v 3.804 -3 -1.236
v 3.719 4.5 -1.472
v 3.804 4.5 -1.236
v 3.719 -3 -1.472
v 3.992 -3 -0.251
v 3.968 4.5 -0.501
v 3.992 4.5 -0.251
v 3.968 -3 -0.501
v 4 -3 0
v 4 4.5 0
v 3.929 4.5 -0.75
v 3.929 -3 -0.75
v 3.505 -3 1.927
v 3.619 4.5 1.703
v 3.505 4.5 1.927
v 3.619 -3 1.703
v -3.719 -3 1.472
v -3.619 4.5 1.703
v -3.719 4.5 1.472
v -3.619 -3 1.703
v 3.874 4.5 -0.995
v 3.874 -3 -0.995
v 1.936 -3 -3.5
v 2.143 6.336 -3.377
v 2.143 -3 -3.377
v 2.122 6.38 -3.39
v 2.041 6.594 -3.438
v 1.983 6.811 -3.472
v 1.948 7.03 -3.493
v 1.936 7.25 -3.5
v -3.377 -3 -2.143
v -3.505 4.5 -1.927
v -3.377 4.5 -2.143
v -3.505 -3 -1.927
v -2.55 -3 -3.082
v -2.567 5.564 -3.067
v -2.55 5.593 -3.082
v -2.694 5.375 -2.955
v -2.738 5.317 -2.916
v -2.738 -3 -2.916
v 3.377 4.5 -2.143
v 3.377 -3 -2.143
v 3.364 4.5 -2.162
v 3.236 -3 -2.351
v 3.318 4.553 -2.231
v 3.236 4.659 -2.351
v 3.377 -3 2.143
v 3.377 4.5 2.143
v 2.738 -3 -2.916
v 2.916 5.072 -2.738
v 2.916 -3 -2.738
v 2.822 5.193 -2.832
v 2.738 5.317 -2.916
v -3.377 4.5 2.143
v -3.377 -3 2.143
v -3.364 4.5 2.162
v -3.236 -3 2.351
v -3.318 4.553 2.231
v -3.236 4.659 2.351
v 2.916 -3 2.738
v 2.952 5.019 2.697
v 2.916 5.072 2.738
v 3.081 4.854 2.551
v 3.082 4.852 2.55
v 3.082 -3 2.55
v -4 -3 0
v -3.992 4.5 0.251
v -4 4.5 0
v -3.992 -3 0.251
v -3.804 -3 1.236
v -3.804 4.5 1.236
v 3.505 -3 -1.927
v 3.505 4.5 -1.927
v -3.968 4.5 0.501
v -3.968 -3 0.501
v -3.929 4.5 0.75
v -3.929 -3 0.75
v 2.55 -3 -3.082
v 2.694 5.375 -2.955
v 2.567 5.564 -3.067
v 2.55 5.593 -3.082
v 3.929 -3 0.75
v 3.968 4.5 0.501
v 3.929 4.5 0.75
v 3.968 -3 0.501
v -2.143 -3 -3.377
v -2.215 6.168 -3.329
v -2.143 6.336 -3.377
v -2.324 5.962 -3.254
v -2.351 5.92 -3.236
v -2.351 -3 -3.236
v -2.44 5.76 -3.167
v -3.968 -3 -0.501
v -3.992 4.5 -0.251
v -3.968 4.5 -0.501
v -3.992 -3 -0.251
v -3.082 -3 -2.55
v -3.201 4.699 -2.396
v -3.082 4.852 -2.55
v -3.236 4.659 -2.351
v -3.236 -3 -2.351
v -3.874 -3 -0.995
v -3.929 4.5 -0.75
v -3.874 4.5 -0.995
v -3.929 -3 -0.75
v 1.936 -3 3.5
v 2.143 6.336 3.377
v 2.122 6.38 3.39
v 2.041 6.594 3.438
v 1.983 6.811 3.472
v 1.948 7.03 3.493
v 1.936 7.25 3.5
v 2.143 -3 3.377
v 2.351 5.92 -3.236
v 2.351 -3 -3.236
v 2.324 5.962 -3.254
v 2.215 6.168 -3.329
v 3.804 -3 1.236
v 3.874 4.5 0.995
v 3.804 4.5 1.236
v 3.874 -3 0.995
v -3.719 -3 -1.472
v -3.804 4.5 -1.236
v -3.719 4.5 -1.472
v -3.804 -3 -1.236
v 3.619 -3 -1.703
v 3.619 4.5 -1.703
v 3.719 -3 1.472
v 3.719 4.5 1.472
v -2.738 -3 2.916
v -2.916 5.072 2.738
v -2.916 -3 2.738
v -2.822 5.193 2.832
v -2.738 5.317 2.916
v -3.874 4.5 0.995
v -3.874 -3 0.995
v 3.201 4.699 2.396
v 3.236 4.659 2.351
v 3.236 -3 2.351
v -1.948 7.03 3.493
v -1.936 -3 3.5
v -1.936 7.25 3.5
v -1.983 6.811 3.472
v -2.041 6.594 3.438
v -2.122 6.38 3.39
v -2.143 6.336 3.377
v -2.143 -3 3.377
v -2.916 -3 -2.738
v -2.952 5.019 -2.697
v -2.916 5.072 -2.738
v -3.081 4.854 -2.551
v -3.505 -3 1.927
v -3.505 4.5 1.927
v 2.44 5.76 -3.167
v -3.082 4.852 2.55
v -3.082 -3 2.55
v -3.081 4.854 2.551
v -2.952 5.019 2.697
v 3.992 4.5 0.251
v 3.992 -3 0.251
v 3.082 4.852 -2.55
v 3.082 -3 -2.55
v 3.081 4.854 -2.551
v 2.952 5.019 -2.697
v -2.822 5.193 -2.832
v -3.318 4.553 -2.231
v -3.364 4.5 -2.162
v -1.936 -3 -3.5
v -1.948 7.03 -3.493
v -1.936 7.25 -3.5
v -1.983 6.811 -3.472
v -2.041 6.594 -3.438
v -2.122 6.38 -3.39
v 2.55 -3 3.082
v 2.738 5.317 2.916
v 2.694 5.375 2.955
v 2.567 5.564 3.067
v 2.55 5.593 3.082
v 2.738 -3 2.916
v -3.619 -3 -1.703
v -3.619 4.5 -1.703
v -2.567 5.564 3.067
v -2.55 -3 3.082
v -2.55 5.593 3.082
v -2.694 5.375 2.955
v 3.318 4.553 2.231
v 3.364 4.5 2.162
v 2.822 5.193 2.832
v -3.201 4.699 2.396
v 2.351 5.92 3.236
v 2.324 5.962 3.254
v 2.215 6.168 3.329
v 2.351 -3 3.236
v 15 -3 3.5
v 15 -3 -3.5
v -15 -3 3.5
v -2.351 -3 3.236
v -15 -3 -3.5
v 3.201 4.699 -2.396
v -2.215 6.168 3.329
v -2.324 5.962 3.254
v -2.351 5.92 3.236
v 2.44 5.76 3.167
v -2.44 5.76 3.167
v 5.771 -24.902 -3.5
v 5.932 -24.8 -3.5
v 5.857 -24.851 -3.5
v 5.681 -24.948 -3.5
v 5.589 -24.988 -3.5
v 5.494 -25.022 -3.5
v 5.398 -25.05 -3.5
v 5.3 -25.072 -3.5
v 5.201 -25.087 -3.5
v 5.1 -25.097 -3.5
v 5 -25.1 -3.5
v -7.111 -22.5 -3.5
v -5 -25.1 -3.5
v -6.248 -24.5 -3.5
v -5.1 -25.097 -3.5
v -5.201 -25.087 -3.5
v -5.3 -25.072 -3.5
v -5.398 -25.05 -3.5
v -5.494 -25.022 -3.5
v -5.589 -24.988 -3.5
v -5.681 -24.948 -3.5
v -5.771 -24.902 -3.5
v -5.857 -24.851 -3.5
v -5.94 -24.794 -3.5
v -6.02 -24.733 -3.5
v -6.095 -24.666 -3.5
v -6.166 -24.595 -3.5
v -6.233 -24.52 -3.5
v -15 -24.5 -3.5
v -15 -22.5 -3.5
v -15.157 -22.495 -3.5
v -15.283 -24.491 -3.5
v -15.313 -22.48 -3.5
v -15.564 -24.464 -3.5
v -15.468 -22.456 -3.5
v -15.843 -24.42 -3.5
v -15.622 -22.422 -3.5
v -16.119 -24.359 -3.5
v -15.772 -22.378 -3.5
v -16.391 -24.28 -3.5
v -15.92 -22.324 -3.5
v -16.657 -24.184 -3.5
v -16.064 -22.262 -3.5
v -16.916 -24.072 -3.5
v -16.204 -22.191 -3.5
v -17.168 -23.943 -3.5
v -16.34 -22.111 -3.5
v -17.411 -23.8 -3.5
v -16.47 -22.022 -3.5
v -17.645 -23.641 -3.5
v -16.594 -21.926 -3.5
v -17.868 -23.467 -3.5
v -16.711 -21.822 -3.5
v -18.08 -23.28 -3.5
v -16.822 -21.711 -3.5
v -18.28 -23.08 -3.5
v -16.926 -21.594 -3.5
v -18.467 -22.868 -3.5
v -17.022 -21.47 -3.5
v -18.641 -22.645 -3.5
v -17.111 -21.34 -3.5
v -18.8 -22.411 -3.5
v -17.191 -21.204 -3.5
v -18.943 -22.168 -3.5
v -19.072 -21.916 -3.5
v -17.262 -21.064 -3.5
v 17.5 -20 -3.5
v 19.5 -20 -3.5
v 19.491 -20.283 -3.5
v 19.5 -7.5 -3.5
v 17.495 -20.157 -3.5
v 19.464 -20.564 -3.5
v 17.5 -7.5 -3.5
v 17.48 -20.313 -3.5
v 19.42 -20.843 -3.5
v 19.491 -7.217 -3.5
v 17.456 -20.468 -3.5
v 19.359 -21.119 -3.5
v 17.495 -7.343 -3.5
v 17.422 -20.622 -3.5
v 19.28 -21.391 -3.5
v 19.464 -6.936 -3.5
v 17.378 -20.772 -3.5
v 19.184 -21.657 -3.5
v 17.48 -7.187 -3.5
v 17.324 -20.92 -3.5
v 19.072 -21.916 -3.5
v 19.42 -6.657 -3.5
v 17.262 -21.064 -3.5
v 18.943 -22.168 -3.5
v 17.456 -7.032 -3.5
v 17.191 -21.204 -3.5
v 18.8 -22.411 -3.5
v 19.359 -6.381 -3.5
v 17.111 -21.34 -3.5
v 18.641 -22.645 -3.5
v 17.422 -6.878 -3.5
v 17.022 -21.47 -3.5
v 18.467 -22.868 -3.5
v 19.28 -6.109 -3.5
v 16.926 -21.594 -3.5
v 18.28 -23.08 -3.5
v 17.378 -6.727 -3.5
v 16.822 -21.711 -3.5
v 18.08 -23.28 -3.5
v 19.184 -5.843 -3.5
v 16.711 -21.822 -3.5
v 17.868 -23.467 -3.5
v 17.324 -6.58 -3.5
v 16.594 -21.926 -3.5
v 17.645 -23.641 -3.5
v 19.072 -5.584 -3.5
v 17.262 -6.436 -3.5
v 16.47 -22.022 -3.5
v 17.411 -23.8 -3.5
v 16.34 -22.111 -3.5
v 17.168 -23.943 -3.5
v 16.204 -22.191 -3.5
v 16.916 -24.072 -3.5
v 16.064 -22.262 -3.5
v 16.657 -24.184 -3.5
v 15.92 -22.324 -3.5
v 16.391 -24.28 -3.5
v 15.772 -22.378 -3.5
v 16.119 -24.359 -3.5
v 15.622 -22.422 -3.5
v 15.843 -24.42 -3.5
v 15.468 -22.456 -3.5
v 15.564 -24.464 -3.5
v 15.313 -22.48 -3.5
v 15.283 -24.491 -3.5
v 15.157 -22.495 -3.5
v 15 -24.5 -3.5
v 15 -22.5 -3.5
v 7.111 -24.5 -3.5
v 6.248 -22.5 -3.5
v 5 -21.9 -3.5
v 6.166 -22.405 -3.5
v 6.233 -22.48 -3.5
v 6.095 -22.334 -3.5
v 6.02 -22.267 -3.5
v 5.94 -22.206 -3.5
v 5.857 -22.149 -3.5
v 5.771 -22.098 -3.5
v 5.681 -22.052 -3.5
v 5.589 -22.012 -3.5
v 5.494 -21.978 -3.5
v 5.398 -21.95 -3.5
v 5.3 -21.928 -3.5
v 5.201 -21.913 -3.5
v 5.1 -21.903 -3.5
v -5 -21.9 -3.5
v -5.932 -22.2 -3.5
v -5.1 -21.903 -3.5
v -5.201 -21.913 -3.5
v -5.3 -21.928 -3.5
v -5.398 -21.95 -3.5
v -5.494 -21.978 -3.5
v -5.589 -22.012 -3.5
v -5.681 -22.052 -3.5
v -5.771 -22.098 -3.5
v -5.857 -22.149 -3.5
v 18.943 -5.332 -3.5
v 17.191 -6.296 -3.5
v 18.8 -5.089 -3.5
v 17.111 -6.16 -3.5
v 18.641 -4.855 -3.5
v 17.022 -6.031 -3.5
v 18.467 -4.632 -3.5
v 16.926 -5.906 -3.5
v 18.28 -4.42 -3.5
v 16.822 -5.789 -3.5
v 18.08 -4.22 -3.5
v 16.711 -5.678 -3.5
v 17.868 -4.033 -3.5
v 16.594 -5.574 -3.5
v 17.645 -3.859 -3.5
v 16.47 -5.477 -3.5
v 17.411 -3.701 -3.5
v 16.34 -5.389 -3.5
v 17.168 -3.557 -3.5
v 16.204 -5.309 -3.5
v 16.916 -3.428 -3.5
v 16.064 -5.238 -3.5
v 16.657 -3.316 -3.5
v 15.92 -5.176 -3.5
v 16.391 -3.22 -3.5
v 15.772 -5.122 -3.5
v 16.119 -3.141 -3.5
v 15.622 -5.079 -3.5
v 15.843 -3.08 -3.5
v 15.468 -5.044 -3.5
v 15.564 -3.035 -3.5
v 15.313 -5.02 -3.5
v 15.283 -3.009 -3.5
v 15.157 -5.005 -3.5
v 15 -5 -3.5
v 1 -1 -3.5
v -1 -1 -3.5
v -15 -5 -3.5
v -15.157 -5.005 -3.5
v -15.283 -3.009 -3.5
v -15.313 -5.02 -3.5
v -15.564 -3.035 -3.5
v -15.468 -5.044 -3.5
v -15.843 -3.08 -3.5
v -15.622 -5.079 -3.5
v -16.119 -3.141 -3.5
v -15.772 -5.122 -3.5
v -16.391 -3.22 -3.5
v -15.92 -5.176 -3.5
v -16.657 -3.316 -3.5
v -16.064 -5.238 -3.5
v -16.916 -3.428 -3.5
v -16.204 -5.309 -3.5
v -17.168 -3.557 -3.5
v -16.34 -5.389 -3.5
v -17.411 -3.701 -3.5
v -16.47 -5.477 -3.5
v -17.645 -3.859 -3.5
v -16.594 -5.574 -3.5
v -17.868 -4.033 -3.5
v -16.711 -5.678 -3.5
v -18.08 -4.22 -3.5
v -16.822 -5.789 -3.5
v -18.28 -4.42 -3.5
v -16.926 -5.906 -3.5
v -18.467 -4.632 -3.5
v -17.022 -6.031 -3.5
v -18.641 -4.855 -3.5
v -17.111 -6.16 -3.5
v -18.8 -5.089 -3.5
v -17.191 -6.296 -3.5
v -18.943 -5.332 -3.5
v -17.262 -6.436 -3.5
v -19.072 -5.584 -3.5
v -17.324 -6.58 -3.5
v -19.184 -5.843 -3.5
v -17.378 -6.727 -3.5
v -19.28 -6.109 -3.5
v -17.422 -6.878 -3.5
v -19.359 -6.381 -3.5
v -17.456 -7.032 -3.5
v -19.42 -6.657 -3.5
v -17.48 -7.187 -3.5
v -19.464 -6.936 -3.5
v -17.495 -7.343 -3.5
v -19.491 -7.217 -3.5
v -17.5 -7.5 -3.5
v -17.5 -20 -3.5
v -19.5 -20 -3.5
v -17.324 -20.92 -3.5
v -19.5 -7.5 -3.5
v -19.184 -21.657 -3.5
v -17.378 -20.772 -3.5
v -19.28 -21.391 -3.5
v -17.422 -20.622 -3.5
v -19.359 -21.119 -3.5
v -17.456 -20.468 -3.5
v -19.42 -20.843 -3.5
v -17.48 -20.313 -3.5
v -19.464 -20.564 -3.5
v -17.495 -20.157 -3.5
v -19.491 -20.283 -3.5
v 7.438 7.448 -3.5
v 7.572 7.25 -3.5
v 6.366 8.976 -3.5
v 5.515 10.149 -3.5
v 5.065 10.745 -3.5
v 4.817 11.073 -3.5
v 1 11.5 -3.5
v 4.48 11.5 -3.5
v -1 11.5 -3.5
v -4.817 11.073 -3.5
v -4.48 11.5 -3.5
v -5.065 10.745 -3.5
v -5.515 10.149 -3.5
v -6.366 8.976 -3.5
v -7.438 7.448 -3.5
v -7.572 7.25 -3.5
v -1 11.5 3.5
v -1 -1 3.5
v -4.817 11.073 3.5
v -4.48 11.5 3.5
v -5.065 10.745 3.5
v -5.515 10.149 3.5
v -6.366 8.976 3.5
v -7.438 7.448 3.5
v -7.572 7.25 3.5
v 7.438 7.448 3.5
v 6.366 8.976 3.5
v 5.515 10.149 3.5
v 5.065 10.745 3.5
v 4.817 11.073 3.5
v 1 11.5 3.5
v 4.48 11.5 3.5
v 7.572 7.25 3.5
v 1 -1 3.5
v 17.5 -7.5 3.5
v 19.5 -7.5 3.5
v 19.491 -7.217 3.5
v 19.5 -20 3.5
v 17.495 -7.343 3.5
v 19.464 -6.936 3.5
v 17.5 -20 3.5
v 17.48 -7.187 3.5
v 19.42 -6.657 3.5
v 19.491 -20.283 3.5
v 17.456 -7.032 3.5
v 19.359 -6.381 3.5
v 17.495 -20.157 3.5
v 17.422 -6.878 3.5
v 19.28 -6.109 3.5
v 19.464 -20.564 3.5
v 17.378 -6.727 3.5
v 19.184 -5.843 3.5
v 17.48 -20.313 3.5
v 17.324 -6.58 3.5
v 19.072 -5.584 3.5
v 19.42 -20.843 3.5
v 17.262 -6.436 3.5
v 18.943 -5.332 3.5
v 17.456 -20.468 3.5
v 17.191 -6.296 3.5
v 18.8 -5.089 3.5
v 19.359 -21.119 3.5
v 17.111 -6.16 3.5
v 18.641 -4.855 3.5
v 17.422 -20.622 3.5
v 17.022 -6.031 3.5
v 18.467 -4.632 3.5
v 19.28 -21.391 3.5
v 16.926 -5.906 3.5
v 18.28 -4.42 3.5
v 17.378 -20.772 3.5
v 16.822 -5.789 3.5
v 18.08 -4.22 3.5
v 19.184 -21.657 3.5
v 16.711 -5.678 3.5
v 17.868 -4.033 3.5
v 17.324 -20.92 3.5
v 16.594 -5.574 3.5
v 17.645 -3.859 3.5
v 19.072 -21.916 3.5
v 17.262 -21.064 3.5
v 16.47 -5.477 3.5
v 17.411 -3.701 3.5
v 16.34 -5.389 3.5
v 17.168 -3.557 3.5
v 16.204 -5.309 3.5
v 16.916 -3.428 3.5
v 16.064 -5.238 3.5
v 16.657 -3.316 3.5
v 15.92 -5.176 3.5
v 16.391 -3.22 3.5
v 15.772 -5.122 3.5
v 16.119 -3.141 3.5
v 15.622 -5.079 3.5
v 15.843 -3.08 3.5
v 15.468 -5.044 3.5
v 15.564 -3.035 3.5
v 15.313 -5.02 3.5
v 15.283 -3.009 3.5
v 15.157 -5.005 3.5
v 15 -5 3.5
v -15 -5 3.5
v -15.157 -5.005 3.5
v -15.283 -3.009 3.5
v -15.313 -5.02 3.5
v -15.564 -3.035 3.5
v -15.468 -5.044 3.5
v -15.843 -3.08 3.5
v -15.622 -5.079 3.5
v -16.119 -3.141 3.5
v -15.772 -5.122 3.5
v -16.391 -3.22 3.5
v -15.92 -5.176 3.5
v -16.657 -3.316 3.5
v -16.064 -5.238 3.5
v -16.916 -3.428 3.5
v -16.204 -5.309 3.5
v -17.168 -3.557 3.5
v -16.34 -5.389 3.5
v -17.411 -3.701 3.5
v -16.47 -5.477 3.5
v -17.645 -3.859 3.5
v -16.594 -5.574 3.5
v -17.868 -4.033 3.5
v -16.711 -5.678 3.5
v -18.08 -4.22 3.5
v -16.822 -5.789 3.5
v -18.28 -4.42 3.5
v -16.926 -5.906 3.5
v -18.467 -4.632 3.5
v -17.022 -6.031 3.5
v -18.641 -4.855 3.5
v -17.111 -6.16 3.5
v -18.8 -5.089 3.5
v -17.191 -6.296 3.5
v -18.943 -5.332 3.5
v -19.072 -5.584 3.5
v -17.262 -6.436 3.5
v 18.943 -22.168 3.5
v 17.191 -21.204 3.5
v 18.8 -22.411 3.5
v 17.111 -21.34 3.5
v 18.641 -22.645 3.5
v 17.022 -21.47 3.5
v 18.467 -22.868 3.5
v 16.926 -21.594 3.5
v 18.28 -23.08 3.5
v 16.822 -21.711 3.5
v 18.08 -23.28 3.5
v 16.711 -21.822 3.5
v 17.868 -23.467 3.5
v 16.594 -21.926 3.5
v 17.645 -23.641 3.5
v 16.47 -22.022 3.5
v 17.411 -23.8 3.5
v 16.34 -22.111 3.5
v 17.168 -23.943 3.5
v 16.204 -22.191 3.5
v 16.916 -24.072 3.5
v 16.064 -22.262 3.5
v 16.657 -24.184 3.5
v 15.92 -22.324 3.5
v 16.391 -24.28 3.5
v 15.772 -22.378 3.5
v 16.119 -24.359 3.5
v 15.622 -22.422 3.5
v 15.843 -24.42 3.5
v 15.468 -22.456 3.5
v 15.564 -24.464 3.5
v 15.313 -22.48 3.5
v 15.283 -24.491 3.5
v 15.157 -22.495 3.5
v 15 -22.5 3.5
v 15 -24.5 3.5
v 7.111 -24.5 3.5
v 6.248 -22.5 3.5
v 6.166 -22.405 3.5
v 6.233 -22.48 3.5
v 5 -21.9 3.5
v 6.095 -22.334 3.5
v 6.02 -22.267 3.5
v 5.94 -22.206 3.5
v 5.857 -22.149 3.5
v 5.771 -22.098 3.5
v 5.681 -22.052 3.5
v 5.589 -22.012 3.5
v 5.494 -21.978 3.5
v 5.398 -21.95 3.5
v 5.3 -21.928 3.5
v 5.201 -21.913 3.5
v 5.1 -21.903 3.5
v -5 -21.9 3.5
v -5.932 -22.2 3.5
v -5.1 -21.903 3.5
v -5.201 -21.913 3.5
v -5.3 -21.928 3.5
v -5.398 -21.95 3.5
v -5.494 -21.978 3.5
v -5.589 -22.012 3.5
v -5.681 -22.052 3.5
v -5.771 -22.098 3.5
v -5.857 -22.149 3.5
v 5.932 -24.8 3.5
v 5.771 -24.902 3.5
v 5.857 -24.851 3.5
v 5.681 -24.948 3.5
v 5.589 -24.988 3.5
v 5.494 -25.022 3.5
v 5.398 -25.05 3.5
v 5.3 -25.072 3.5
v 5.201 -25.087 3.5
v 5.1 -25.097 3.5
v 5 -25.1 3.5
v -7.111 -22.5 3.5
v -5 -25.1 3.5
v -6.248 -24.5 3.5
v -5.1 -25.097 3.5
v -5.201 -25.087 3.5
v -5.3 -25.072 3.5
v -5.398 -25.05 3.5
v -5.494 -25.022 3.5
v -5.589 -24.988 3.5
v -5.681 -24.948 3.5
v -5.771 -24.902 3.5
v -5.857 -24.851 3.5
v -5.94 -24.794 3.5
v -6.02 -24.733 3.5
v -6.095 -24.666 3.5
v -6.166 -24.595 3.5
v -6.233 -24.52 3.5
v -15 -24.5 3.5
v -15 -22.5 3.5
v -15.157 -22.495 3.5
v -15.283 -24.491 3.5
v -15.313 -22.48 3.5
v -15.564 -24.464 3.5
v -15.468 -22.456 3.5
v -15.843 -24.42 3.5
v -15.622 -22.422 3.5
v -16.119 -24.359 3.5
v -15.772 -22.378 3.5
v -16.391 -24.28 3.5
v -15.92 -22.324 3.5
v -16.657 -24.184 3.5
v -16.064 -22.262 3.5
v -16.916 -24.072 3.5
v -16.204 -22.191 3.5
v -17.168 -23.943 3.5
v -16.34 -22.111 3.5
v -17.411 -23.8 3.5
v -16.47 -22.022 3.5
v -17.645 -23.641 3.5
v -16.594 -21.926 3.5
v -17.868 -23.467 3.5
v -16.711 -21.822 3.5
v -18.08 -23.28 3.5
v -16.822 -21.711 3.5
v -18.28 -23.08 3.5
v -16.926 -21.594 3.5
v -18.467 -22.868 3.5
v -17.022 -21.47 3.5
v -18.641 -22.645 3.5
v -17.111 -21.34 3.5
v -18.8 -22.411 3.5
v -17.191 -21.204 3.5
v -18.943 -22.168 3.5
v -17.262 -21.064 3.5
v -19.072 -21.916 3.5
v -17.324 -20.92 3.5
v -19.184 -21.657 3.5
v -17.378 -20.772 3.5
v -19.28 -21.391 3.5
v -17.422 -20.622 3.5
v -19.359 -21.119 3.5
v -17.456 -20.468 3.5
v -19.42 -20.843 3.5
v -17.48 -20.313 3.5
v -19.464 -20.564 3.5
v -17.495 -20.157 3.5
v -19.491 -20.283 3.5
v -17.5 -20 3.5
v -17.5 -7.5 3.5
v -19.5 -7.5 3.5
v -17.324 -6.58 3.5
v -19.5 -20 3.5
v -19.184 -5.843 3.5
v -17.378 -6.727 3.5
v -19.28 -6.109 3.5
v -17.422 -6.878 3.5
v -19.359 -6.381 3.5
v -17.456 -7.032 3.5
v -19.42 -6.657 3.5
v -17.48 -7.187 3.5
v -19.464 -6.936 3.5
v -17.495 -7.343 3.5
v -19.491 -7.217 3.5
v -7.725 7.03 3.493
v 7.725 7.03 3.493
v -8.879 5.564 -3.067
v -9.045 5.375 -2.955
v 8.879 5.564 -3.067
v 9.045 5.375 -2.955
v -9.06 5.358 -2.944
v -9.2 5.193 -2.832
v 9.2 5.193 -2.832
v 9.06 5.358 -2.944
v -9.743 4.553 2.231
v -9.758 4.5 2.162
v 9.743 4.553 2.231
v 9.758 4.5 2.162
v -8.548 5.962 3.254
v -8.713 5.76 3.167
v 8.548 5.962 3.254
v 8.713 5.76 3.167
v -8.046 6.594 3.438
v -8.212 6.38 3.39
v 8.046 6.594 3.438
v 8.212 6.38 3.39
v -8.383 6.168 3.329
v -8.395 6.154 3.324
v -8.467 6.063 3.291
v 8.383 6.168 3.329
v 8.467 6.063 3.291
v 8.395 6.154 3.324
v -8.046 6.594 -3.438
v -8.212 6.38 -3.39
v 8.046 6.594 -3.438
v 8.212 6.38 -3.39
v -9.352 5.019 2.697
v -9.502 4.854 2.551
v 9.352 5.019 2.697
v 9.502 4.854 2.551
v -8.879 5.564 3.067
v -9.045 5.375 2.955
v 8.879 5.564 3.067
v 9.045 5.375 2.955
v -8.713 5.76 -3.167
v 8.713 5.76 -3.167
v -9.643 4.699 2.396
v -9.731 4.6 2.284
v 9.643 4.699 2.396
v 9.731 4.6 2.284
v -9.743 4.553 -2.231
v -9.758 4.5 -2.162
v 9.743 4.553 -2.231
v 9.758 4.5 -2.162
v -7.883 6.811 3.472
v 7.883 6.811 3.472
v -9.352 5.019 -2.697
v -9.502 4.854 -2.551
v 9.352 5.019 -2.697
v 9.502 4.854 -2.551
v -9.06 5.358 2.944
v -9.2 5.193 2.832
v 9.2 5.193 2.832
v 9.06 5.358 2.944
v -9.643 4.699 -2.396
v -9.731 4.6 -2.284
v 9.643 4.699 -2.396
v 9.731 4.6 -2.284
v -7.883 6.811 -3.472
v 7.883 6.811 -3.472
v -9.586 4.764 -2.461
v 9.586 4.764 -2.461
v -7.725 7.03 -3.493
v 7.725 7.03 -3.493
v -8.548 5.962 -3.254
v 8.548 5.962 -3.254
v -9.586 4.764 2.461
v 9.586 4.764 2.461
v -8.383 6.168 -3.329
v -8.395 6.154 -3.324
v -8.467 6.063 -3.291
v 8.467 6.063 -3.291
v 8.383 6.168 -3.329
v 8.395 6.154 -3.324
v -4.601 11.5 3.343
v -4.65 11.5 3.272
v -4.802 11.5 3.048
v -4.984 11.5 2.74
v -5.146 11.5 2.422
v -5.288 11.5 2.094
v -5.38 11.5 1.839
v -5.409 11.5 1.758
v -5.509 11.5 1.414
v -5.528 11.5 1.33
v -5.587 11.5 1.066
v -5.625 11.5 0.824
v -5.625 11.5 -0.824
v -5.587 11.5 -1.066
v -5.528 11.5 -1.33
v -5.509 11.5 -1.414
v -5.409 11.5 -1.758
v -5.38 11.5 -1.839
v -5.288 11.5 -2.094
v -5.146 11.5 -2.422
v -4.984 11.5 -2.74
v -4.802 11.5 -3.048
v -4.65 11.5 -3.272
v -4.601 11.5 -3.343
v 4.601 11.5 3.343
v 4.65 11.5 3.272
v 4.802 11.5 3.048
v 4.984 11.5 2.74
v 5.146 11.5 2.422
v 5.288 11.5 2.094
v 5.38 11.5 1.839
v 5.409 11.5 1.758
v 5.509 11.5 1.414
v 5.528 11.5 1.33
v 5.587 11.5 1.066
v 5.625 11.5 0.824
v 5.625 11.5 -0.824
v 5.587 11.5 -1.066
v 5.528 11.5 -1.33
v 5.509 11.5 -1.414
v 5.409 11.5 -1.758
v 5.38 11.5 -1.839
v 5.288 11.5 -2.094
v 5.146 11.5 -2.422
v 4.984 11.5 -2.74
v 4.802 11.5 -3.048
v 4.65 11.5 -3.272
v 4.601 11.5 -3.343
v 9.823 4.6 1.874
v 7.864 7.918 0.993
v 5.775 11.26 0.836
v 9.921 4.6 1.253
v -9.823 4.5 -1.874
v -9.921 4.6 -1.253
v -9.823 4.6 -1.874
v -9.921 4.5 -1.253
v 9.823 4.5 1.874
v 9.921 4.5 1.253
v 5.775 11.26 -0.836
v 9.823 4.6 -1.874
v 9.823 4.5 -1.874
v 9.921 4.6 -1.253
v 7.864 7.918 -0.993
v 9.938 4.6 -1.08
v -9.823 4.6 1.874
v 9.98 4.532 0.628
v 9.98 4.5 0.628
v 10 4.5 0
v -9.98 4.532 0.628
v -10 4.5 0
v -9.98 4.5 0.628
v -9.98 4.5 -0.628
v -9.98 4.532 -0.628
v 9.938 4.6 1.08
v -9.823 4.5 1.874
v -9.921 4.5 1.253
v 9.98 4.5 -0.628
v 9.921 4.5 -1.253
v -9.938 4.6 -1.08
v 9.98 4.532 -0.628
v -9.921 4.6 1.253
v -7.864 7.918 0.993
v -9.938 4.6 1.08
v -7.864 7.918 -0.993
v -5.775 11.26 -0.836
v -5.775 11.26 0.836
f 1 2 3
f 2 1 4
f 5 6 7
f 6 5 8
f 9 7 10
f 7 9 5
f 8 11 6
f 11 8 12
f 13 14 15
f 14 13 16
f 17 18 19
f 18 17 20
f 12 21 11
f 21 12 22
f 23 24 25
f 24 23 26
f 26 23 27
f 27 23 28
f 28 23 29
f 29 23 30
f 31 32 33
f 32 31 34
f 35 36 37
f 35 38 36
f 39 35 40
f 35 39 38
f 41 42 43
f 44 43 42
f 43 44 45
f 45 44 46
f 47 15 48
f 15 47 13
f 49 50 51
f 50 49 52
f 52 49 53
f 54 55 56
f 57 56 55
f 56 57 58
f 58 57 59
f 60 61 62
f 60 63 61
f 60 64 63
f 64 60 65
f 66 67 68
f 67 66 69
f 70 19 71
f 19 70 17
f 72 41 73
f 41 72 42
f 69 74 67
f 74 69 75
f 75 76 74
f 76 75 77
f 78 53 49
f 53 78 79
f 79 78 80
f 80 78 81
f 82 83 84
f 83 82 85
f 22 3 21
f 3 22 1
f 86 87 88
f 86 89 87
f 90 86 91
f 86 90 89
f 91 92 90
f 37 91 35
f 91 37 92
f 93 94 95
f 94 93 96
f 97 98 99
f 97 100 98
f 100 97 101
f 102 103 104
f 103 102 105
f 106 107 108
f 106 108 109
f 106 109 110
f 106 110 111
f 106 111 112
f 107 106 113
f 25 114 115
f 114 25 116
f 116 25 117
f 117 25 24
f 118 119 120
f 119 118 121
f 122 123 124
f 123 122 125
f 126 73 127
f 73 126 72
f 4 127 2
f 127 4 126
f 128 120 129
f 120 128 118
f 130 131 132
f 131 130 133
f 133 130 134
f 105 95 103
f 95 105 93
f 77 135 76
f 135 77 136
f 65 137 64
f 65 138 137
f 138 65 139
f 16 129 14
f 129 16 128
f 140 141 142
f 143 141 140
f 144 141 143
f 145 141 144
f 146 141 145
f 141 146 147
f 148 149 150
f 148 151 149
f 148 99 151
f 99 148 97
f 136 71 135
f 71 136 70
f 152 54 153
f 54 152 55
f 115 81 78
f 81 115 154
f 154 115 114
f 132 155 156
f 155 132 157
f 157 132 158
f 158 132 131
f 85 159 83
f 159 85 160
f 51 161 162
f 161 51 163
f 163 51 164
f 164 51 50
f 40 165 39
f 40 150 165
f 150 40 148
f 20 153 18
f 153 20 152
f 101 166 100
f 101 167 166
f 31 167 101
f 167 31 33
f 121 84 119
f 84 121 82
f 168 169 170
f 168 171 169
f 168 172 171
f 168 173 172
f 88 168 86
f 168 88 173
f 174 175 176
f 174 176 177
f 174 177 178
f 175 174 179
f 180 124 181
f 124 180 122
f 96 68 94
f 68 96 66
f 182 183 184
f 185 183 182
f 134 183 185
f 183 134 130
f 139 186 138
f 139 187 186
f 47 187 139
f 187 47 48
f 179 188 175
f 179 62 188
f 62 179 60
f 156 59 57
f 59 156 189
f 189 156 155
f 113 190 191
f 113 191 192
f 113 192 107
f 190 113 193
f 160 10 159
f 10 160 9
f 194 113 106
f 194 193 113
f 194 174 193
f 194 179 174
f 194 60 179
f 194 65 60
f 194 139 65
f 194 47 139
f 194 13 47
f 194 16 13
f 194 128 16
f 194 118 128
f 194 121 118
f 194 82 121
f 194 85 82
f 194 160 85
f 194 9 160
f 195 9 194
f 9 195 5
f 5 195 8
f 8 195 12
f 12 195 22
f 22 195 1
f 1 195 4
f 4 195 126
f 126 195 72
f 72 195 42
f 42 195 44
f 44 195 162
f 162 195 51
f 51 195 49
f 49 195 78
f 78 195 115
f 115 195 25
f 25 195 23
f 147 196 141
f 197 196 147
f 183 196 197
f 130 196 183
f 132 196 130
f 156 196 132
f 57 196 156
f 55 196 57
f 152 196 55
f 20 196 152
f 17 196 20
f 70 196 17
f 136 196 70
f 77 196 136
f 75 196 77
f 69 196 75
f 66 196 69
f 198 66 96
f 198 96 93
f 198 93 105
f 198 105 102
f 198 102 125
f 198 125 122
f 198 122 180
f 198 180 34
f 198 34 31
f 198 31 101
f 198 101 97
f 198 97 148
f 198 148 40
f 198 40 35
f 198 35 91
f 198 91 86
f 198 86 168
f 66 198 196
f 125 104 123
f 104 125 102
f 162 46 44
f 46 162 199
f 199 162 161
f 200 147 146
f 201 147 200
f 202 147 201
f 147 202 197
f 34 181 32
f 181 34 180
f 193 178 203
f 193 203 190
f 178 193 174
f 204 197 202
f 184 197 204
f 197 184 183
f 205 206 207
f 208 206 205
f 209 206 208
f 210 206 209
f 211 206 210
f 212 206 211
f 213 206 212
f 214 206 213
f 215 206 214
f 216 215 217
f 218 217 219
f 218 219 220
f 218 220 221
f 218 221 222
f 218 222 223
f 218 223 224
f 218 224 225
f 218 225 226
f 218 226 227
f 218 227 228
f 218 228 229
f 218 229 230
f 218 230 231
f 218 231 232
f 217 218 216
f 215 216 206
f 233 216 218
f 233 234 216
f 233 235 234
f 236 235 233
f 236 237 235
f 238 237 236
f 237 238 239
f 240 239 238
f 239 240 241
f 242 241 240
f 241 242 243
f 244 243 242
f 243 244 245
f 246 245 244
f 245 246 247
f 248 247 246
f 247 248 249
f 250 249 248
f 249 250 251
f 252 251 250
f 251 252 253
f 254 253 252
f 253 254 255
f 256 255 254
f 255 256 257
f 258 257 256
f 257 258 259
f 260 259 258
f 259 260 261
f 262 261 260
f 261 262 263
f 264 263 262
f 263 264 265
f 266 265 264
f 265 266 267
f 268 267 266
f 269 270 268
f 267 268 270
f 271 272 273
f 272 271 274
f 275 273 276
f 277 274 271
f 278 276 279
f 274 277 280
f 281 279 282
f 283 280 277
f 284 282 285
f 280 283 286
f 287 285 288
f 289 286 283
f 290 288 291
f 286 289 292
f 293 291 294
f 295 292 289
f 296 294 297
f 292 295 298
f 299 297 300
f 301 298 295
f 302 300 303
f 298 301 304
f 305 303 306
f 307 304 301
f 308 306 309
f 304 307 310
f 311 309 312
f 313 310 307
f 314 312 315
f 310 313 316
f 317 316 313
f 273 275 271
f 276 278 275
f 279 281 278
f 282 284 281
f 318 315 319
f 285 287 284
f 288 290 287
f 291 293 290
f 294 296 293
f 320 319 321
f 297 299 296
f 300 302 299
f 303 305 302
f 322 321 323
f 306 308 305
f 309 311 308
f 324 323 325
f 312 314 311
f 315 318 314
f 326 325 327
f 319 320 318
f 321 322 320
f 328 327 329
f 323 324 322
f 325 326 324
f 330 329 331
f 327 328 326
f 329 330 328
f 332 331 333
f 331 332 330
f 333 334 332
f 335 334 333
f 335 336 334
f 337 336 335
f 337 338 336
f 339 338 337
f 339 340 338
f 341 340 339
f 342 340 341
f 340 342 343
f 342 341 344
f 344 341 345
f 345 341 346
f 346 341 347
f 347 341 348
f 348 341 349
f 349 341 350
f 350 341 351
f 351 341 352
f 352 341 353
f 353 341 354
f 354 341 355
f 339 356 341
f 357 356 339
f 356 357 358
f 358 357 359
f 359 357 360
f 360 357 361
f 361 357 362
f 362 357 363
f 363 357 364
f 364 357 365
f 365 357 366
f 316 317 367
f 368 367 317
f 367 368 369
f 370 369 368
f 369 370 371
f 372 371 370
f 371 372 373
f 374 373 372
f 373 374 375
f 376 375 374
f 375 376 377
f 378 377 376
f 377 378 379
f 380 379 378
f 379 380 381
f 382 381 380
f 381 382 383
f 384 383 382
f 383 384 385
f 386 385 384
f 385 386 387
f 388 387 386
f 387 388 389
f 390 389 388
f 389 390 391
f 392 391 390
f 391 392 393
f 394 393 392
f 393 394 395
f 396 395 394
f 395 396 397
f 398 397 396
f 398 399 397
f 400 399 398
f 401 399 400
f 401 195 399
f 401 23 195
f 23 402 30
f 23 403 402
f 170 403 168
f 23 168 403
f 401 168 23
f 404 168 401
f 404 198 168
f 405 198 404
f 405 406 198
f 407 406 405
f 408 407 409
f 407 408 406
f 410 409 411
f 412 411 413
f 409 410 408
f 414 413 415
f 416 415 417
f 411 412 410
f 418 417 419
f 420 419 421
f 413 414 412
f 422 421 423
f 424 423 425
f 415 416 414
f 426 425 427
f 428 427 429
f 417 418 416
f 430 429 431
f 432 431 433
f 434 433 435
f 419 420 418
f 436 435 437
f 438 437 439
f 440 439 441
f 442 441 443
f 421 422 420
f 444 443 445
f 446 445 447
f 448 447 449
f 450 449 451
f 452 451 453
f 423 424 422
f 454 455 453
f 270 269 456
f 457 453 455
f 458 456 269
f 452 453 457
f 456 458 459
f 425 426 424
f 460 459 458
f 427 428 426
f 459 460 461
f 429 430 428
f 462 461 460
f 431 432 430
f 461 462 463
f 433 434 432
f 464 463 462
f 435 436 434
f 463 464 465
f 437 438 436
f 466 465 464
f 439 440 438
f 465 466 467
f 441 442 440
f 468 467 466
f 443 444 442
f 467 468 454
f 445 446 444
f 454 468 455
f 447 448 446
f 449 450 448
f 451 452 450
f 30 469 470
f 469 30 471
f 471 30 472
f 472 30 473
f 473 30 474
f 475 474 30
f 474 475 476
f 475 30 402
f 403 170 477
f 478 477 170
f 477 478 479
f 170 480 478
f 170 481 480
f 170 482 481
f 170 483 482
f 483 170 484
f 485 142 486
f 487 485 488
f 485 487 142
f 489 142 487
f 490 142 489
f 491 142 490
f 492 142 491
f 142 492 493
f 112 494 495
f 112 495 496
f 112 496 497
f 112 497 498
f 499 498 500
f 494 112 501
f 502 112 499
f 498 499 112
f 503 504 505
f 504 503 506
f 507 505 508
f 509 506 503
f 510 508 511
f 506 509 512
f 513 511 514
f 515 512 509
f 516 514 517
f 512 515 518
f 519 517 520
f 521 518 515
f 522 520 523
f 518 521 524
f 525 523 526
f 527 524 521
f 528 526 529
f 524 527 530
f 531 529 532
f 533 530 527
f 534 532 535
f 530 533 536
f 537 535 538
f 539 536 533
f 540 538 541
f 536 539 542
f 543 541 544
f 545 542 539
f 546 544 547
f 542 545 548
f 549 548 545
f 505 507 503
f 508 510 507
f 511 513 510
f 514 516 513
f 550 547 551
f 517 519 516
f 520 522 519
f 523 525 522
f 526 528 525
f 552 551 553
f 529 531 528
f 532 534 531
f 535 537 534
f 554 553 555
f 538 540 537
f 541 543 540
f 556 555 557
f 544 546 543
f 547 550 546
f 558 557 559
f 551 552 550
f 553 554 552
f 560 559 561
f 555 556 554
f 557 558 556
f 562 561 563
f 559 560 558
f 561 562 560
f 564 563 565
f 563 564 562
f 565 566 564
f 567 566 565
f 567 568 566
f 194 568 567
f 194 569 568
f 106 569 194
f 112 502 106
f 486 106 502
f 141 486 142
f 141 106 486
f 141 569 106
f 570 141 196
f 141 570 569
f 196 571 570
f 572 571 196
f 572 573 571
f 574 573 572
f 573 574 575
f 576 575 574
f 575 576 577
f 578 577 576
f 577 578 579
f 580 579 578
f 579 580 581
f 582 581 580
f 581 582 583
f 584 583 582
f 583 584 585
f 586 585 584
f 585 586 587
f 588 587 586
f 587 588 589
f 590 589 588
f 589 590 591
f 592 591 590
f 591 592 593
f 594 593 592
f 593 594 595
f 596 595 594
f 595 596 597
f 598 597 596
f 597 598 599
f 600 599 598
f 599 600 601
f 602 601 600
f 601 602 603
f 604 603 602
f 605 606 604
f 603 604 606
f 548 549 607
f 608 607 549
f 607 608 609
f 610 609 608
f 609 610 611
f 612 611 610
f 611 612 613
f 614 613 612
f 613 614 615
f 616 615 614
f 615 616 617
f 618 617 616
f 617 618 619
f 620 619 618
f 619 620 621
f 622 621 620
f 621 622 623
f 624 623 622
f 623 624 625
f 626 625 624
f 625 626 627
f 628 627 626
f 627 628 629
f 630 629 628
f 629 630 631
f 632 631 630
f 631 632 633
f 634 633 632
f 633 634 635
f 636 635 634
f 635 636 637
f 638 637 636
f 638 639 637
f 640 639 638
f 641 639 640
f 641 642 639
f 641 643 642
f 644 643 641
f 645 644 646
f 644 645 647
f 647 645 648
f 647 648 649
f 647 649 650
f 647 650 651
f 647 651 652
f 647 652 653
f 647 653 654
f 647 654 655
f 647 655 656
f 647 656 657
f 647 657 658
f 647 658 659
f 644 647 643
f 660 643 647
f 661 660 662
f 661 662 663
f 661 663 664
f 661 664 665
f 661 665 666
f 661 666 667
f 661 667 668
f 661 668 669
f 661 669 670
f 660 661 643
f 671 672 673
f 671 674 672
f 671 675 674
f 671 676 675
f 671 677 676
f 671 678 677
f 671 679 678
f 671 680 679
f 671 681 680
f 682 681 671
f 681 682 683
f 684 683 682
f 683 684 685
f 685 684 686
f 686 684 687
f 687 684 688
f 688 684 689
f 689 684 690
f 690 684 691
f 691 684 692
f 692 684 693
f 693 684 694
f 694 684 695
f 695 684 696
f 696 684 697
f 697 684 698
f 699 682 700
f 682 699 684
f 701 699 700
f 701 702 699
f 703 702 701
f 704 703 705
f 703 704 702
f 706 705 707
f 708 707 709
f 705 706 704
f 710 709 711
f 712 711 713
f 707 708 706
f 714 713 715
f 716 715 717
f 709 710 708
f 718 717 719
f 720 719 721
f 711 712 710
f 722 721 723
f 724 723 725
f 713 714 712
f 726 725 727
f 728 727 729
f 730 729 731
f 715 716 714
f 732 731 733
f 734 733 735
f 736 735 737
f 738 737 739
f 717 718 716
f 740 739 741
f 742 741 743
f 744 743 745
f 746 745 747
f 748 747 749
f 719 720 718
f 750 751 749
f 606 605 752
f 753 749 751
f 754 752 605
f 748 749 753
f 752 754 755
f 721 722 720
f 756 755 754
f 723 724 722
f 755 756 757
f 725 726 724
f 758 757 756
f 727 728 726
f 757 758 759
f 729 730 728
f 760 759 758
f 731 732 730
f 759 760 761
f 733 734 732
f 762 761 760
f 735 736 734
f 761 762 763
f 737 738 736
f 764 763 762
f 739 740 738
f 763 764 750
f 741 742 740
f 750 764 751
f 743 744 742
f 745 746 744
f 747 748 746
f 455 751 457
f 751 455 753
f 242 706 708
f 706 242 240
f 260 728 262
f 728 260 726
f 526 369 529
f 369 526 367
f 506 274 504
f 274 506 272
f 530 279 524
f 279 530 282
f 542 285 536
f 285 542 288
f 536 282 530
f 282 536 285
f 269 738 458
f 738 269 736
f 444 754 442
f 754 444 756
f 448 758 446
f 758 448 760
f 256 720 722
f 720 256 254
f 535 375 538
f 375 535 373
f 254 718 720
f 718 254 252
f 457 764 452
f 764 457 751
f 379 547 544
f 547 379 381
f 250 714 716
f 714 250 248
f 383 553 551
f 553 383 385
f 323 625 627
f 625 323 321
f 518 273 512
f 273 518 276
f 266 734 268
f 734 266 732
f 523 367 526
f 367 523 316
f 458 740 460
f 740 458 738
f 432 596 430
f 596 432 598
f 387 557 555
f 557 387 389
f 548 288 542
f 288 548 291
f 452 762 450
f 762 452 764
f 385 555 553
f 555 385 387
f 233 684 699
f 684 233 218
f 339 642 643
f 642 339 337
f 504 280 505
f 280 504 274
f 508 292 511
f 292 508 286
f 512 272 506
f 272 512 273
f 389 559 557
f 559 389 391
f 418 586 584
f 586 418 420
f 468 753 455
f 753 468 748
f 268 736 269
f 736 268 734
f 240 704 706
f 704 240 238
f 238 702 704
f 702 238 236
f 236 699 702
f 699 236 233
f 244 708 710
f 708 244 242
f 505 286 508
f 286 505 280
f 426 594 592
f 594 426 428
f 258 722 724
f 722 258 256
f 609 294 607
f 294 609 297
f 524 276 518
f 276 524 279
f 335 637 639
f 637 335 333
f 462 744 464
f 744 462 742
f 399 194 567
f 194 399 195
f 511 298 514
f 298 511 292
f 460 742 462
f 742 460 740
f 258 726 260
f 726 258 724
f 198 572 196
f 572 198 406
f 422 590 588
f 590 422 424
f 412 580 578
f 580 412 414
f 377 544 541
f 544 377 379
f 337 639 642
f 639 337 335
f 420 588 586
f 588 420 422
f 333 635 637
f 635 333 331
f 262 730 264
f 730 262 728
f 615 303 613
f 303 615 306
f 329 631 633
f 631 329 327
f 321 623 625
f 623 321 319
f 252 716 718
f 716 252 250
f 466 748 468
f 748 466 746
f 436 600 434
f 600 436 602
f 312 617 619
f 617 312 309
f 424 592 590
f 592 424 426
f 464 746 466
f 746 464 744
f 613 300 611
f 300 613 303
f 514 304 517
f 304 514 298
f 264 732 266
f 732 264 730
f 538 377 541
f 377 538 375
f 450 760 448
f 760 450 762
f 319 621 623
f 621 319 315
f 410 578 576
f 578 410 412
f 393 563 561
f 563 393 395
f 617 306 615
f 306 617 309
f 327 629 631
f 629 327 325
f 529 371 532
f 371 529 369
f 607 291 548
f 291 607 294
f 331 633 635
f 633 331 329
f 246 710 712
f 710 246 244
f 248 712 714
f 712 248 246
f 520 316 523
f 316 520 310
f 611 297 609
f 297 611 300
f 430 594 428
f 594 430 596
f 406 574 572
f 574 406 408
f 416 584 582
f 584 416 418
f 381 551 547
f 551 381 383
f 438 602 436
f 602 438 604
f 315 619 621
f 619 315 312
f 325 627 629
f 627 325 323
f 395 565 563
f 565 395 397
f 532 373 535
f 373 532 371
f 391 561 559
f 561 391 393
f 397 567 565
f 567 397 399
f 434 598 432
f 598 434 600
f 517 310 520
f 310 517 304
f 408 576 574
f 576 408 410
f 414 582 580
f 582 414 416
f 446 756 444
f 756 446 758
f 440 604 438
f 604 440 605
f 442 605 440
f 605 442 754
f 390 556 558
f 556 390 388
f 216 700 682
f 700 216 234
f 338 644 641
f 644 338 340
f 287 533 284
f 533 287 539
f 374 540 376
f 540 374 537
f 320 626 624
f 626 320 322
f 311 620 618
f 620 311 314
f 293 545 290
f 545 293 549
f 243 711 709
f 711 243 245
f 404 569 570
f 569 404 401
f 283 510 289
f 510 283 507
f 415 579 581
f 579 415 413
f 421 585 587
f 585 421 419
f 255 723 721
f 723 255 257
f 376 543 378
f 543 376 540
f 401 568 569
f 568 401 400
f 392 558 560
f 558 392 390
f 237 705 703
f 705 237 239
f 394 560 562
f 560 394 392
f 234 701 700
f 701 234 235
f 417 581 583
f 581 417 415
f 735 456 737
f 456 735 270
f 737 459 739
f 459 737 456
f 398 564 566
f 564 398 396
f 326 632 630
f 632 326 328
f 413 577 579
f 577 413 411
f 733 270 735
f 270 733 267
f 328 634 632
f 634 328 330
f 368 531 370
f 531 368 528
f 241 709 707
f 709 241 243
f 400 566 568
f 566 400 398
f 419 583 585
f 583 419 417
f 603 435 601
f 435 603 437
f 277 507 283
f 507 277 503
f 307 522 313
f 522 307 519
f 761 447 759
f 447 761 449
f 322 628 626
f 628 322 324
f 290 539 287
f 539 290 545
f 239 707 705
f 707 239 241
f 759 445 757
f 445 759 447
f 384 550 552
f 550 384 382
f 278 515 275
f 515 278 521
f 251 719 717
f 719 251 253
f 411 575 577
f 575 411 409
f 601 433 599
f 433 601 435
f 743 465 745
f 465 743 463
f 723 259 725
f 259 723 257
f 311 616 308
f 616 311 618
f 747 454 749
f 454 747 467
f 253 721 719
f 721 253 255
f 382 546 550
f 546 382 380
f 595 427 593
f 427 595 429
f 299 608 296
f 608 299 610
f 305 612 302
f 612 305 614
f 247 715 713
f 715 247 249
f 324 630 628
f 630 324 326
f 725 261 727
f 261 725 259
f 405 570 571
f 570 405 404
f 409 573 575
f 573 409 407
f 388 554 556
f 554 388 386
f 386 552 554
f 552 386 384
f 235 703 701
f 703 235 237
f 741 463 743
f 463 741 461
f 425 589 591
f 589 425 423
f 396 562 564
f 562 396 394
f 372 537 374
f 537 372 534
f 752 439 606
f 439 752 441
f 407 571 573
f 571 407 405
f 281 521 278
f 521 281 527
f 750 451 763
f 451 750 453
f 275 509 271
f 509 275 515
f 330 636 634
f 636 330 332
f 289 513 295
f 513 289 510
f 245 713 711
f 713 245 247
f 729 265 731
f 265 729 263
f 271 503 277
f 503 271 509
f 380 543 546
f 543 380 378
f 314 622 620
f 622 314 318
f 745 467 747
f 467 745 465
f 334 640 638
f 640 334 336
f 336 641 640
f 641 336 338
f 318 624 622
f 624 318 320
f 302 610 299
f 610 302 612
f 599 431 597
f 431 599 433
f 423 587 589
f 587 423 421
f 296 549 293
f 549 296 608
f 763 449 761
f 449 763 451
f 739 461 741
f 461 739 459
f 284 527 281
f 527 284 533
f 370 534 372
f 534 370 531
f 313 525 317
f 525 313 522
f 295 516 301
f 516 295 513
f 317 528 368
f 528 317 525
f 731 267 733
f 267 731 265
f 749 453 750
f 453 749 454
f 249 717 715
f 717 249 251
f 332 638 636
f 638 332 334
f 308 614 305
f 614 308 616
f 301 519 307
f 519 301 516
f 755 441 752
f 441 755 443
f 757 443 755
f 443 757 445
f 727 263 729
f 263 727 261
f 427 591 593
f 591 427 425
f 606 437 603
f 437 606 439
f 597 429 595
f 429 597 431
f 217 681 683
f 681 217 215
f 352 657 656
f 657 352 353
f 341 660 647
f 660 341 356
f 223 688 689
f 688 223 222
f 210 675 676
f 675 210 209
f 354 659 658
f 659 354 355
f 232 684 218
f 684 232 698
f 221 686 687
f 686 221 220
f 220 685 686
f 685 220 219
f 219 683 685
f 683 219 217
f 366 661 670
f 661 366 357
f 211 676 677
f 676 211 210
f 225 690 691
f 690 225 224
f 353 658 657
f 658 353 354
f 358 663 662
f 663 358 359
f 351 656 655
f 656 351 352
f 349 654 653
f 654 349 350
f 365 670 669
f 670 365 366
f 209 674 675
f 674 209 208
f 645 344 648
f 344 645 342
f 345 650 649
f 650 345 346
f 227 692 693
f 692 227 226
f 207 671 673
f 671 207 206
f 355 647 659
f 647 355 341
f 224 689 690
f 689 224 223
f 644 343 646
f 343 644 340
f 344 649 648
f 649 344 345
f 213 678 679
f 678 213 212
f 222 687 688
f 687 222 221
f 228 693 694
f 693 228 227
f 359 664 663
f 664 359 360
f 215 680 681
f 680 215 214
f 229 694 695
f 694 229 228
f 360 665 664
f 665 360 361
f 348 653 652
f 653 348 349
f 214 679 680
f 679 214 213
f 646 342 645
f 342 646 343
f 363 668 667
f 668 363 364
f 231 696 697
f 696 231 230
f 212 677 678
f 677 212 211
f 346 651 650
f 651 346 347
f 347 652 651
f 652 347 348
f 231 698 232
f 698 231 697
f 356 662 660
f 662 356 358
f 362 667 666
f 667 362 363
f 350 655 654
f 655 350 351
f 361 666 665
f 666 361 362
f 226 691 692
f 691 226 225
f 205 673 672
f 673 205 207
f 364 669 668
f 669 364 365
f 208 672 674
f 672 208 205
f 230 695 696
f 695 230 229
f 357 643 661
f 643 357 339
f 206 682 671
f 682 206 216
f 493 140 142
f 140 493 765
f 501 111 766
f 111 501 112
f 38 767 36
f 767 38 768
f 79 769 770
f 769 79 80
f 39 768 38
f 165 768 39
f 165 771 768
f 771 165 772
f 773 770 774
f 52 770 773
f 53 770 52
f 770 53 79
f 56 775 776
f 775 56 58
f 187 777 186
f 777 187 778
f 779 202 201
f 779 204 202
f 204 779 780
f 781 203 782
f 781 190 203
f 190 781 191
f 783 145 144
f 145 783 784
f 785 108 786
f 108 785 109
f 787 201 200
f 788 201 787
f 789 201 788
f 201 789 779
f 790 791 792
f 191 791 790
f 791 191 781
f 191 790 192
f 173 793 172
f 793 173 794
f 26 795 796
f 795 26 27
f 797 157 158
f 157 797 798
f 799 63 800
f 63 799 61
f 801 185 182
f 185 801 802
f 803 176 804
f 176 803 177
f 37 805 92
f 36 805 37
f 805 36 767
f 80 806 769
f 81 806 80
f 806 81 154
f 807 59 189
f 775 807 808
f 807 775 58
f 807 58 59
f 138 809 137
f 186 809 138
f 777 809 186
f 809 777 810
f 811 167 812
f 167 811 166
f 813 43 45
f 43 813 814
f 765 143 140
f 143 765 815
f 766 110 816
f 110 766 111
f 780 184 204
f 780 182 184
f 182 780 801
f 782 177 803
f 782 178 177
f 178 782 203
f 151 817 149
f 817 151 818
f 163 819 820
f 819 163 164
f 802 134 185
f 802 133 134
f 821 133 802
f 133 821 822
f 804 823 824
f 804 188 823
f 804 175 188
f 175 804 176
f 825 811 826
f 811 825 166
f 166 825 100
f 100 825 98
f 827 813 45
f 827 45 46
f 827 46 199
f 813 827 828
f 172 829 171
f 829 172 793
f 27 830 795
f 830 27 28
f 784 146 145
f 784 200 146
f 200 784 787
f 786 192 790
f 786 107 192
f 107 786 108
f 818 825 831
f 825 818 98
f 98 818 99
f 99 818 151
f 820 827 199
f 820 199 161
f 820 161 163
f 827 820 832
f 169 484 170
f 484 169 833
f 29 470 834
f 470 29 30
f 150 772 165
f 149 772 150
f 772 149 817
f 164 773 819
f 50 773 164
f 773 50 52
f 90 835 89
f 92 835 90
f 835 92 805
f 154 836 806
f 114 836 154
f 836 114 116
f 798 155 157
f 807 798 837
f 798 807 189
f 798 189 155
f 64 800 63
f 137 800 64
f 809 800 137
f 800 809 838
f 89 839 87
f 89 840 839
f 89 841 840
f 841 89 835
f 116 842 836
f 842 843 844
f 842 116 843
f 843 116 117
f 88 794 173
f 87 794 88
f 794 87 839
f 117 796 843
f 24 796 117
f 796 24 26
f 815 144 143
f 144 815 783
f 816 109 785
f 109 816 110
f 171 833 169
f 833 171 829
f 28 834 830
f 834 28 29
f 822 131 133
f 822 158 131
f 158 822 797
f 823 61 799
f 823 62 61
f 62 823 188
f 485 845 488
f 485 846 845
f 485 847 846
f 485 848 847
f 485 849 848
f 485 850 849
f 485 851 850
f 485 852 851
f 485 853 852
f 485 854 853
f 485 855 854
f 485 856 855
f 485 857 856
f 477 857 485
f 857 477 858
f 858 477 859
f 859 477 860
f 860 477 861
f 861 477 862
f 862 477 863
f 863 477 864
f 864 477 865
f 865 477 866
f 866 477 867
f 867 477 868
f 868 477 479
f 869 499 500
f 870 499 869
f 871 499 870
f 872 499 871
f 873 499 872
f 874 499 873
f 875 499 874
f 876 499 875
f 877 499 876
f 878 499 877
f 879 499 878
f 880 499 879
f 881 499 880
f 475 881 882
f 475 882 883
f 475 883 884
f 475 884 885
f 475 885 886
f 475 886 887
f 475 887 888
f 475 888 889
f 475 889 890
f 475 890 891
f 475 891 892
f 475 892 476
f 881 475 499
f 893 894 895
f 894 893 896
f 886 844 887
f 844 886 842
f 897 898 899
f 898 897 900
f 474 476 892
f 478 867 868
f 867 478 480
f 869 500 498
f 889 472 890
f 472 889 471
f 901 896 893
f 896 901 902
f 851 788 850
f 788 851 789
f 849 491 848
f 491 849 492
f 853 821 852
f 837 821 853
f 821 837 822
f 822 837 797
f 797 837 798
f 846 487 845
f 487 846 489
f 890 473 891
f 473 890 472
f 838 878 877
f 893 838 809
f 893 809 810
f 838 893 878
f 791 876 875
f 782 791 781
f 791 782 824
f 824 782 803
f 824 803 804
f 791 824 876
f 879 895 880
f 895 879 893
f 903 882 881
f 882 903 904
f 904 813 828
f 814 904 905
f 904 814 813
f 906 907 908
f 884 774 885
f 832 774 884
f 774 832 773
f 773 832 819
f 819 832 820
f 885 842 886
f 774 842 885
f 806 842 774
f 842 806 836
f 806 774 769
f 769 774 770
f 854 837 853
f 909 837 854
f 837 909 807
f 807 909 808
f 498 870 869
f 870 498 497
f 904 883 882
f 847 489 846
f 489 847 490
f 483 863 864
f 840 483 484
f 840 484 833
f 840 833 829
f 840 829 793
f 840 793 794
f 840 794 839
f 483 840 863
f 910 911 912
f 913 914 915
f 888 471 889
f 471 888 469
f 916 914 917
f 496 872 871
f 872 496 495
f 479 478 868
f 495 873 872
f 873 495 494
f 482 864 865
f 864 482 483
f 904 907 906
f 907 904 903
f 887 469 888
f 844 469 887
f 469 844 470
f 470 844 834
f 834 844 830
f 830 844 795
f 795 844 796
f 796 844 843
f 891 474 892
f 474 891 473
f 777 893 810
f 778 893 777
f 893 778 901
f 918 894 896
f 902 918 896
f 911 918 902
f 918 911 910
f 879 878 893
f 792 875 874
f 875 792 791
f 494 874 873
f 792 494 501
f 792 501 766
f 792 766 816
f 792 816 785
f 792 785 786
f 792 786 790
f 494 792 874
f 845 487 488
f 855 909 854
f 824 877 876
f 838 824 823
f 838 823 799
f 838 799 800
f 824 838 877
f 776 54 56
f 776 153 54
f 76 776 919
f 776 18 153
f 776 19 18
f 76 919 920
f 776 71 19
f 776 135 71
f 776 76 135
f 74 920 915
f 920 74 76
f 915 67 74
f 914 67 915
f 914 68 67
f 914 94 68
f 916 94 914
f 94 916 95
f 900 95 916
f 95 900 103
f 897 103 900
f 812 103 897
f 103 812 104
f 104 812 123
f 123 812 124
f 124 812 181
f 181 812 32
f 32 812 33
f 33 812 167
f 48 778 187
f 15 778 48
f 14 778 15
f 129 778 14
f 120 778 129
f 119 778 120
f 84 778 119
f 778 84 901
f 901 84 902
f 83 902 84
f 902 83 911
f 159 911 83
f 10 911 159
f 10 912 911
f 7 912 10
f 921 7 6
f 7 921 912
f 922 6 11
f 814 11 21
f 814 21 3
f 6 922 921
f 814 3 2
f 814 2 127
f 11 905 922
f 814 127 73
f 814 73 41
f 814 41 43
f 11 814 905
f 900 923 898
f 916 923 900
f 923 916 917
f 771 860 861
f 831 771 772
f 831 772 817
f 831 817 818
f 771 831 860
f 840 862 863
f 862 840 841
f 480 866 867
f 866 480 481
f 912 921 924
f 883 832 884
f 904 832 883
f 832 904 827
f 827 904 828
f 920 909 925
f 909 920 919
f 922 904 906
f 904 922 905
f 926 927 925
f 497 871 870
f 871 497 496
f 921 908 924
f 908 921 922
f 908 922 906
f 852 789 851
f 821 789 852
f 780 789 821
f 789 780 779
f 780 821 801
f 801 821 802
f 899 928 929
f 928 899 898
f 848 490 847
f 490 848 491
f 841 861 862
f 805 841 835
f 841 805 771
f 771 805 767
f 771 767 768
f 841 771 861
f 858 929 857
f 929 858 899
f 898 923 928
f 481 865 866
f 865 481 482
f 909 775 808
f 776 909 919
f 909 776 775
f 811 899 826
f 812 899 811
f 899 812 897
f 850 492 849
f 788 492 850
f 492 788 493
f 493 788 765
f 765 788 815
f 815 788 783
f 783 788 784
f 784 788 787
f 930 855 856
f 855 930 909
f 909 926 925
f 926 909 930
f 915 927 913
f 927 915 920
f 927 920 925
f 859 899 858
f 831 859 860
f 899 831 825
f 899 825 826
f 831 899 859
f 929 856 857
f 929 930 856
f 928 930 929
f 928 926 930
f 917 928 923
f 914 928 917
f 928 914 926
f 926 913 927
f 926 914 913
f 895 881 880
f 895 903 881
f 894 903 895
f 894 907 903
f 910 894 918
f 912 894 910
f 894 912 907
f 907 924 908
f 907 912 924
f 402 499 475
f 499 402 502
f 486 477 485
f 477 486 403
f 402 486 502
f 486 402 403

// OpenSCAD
$fn=100;
/*
    Parametric Cable Loop For Tslot Mounting
    By Brian Khuu (2020)
    
    Got a desk with tslot rails, would be nice to organise cable
*/

/* [Tslot Spec] */
// CenterDepth
tslot_centerdepth = 5+0.5;
// CenterWidth
tslot_centerwidth = 8; // Gap to slot the clip though
// For the wedge... its based on a 4040mm Tslot... so may need to modify polygon() in this script

/* [Clip Spec] */
// X Width
clipx = 35;
// Y Width
clipy = 15;
// Clip Rounding Diameter
hookdia=5;
// Clip Width
hookwidth=7;
// Thickness
hookthickness=2;

/* [Tslot Model] */
model_slot_gap = 10;
model_slot_side = 15;

translate([0, -1, 0])
union()
{
    difference()
    {
        union()
        {
            // Tslot Mount Inner
            translate([0, tslot_centerdepth, 0])
                intersection()
                {
                    heightlim=7;
                    linear_extrude(height = hookwidth, center = true)
                        polygon(points=[[-10,0],[-5,8],[5,8],[10,0]]);
                    rotate([-90,0,0])
                        intersection()
                        {
                            hull()
                            {
                                translate([0,0,0]) cylinder(r=10, h=0.1);
                                translate([0,0,8]) cylinder(r=5, h=0.1);
                            }
                            union()
                            {
                                translate([0,0,heightlim/2+tslot_centerdepth/4]) 
                                    cube([20,20,heightlim-tslot_centerdepth/2], center = true);
                                intersection()
                                {
                                    rotate([0,90,0])
                                        translate([-tslot_centerdepth/2,0,0]) 
                                        cylinder(r=hookwidth/2, h=20, center = true);
                                    cube([20,20,hookwidth+1], center = true);
                                }
                            }
                        }
                }

            // tslot mount shaft
            translate([0, -hookthickness, 0])
            rotate([-90,0,0])
                intersection()
                {
                    cheight = tslot_centerdepth+hookthickness+hookwidth/2;
                    cylinder(r=tslot_centerwidth/2, h=cheight);
                    translate([0, 0, cheight/2])
                        cube([tslot_centerwidth+10, hookwidth, cheight], center=true);
                }
        }
        
        //
        translate([0, 100/2, 0])
            cube([2,100,100], center=true);

    }
 
    // Cable Loop
    translate([0, -hookdia/2-hookthickness-2, 0])
    union()
    {
       difference()
       {
            union()
            {
                difference()
                {
                    hull()
                    {
                        translate([clipx/2 - hookdia/2,0,0])
                            cylinder(r=hookdia/2+hookthickness, h=hookwidth, center=true);
                        translate([-clipx/2 +hookdia/2,0,0])
                            cylinder(r=hookdia/2+hookthickness, h=hookwidth, center=true);
                        translate([clipx/2 - hookdia/2,-clipy+hookdia/2,0])
                            cylinder(r=hookdia/2+hookthickness, h=hookwidth, center=true);
                        translate([-clipx/2 +hookdia/2,-clipy+hookdia/2,0])
                            cylinder(r=hookdia/2+hookthickness, h=hookwidth, center=true);
                    }
                    hull()
                    {
                        translate([clipx/2 - hookdia/2,0,0])
                            cylinder(r=hookdia/2, h=hookwidth+1, center=true);
                        translate([-clipx/2 +hookdia/2,0,0])
                            cylinder(r=hookdia/2, h=hookwidth+1, center=true);
                        translate([clipx/2 - hookdia/2,-clipy+hookdia/2,0])
                            cylinder(r=hookdia/2, h=hookwidth+1, center=true);
                        translate([-clipx/2 +hookdia/2,-clipy+hookdia/2,0])
                            cylinder(r=hookdia/2, h=hookwidth+1, center=true);
                    }
                }
                hull()
                {
                    translate([5,-clipy-hookdia/2+1.5,0])
                        cylinder(r=hookthickness*0.8, h=hookwidth, center=true);
                    translate([-5,-clipy-hookdia/2+1.5,0])
                        cylinder(r=hookthickness*0.8, h=hookwidth, center=true);
                }
            }
            // Cut
            #translate([0,-clipy-hookdia/2+1.5,0])
                rotate([0,0,80])
                cube([0.5,hookthickness+15,hookwidth+2], center=true);
        }
    }
}

%translate([model_slot_side/2+model_slot_gap/2,0,0]) cube([model_slot_side,0.1,100], center=true);
%translate([-model_slot_side/2-model_slot_gap/2,0,0]) cube([model_slot_side,0.1,100], center=true);
